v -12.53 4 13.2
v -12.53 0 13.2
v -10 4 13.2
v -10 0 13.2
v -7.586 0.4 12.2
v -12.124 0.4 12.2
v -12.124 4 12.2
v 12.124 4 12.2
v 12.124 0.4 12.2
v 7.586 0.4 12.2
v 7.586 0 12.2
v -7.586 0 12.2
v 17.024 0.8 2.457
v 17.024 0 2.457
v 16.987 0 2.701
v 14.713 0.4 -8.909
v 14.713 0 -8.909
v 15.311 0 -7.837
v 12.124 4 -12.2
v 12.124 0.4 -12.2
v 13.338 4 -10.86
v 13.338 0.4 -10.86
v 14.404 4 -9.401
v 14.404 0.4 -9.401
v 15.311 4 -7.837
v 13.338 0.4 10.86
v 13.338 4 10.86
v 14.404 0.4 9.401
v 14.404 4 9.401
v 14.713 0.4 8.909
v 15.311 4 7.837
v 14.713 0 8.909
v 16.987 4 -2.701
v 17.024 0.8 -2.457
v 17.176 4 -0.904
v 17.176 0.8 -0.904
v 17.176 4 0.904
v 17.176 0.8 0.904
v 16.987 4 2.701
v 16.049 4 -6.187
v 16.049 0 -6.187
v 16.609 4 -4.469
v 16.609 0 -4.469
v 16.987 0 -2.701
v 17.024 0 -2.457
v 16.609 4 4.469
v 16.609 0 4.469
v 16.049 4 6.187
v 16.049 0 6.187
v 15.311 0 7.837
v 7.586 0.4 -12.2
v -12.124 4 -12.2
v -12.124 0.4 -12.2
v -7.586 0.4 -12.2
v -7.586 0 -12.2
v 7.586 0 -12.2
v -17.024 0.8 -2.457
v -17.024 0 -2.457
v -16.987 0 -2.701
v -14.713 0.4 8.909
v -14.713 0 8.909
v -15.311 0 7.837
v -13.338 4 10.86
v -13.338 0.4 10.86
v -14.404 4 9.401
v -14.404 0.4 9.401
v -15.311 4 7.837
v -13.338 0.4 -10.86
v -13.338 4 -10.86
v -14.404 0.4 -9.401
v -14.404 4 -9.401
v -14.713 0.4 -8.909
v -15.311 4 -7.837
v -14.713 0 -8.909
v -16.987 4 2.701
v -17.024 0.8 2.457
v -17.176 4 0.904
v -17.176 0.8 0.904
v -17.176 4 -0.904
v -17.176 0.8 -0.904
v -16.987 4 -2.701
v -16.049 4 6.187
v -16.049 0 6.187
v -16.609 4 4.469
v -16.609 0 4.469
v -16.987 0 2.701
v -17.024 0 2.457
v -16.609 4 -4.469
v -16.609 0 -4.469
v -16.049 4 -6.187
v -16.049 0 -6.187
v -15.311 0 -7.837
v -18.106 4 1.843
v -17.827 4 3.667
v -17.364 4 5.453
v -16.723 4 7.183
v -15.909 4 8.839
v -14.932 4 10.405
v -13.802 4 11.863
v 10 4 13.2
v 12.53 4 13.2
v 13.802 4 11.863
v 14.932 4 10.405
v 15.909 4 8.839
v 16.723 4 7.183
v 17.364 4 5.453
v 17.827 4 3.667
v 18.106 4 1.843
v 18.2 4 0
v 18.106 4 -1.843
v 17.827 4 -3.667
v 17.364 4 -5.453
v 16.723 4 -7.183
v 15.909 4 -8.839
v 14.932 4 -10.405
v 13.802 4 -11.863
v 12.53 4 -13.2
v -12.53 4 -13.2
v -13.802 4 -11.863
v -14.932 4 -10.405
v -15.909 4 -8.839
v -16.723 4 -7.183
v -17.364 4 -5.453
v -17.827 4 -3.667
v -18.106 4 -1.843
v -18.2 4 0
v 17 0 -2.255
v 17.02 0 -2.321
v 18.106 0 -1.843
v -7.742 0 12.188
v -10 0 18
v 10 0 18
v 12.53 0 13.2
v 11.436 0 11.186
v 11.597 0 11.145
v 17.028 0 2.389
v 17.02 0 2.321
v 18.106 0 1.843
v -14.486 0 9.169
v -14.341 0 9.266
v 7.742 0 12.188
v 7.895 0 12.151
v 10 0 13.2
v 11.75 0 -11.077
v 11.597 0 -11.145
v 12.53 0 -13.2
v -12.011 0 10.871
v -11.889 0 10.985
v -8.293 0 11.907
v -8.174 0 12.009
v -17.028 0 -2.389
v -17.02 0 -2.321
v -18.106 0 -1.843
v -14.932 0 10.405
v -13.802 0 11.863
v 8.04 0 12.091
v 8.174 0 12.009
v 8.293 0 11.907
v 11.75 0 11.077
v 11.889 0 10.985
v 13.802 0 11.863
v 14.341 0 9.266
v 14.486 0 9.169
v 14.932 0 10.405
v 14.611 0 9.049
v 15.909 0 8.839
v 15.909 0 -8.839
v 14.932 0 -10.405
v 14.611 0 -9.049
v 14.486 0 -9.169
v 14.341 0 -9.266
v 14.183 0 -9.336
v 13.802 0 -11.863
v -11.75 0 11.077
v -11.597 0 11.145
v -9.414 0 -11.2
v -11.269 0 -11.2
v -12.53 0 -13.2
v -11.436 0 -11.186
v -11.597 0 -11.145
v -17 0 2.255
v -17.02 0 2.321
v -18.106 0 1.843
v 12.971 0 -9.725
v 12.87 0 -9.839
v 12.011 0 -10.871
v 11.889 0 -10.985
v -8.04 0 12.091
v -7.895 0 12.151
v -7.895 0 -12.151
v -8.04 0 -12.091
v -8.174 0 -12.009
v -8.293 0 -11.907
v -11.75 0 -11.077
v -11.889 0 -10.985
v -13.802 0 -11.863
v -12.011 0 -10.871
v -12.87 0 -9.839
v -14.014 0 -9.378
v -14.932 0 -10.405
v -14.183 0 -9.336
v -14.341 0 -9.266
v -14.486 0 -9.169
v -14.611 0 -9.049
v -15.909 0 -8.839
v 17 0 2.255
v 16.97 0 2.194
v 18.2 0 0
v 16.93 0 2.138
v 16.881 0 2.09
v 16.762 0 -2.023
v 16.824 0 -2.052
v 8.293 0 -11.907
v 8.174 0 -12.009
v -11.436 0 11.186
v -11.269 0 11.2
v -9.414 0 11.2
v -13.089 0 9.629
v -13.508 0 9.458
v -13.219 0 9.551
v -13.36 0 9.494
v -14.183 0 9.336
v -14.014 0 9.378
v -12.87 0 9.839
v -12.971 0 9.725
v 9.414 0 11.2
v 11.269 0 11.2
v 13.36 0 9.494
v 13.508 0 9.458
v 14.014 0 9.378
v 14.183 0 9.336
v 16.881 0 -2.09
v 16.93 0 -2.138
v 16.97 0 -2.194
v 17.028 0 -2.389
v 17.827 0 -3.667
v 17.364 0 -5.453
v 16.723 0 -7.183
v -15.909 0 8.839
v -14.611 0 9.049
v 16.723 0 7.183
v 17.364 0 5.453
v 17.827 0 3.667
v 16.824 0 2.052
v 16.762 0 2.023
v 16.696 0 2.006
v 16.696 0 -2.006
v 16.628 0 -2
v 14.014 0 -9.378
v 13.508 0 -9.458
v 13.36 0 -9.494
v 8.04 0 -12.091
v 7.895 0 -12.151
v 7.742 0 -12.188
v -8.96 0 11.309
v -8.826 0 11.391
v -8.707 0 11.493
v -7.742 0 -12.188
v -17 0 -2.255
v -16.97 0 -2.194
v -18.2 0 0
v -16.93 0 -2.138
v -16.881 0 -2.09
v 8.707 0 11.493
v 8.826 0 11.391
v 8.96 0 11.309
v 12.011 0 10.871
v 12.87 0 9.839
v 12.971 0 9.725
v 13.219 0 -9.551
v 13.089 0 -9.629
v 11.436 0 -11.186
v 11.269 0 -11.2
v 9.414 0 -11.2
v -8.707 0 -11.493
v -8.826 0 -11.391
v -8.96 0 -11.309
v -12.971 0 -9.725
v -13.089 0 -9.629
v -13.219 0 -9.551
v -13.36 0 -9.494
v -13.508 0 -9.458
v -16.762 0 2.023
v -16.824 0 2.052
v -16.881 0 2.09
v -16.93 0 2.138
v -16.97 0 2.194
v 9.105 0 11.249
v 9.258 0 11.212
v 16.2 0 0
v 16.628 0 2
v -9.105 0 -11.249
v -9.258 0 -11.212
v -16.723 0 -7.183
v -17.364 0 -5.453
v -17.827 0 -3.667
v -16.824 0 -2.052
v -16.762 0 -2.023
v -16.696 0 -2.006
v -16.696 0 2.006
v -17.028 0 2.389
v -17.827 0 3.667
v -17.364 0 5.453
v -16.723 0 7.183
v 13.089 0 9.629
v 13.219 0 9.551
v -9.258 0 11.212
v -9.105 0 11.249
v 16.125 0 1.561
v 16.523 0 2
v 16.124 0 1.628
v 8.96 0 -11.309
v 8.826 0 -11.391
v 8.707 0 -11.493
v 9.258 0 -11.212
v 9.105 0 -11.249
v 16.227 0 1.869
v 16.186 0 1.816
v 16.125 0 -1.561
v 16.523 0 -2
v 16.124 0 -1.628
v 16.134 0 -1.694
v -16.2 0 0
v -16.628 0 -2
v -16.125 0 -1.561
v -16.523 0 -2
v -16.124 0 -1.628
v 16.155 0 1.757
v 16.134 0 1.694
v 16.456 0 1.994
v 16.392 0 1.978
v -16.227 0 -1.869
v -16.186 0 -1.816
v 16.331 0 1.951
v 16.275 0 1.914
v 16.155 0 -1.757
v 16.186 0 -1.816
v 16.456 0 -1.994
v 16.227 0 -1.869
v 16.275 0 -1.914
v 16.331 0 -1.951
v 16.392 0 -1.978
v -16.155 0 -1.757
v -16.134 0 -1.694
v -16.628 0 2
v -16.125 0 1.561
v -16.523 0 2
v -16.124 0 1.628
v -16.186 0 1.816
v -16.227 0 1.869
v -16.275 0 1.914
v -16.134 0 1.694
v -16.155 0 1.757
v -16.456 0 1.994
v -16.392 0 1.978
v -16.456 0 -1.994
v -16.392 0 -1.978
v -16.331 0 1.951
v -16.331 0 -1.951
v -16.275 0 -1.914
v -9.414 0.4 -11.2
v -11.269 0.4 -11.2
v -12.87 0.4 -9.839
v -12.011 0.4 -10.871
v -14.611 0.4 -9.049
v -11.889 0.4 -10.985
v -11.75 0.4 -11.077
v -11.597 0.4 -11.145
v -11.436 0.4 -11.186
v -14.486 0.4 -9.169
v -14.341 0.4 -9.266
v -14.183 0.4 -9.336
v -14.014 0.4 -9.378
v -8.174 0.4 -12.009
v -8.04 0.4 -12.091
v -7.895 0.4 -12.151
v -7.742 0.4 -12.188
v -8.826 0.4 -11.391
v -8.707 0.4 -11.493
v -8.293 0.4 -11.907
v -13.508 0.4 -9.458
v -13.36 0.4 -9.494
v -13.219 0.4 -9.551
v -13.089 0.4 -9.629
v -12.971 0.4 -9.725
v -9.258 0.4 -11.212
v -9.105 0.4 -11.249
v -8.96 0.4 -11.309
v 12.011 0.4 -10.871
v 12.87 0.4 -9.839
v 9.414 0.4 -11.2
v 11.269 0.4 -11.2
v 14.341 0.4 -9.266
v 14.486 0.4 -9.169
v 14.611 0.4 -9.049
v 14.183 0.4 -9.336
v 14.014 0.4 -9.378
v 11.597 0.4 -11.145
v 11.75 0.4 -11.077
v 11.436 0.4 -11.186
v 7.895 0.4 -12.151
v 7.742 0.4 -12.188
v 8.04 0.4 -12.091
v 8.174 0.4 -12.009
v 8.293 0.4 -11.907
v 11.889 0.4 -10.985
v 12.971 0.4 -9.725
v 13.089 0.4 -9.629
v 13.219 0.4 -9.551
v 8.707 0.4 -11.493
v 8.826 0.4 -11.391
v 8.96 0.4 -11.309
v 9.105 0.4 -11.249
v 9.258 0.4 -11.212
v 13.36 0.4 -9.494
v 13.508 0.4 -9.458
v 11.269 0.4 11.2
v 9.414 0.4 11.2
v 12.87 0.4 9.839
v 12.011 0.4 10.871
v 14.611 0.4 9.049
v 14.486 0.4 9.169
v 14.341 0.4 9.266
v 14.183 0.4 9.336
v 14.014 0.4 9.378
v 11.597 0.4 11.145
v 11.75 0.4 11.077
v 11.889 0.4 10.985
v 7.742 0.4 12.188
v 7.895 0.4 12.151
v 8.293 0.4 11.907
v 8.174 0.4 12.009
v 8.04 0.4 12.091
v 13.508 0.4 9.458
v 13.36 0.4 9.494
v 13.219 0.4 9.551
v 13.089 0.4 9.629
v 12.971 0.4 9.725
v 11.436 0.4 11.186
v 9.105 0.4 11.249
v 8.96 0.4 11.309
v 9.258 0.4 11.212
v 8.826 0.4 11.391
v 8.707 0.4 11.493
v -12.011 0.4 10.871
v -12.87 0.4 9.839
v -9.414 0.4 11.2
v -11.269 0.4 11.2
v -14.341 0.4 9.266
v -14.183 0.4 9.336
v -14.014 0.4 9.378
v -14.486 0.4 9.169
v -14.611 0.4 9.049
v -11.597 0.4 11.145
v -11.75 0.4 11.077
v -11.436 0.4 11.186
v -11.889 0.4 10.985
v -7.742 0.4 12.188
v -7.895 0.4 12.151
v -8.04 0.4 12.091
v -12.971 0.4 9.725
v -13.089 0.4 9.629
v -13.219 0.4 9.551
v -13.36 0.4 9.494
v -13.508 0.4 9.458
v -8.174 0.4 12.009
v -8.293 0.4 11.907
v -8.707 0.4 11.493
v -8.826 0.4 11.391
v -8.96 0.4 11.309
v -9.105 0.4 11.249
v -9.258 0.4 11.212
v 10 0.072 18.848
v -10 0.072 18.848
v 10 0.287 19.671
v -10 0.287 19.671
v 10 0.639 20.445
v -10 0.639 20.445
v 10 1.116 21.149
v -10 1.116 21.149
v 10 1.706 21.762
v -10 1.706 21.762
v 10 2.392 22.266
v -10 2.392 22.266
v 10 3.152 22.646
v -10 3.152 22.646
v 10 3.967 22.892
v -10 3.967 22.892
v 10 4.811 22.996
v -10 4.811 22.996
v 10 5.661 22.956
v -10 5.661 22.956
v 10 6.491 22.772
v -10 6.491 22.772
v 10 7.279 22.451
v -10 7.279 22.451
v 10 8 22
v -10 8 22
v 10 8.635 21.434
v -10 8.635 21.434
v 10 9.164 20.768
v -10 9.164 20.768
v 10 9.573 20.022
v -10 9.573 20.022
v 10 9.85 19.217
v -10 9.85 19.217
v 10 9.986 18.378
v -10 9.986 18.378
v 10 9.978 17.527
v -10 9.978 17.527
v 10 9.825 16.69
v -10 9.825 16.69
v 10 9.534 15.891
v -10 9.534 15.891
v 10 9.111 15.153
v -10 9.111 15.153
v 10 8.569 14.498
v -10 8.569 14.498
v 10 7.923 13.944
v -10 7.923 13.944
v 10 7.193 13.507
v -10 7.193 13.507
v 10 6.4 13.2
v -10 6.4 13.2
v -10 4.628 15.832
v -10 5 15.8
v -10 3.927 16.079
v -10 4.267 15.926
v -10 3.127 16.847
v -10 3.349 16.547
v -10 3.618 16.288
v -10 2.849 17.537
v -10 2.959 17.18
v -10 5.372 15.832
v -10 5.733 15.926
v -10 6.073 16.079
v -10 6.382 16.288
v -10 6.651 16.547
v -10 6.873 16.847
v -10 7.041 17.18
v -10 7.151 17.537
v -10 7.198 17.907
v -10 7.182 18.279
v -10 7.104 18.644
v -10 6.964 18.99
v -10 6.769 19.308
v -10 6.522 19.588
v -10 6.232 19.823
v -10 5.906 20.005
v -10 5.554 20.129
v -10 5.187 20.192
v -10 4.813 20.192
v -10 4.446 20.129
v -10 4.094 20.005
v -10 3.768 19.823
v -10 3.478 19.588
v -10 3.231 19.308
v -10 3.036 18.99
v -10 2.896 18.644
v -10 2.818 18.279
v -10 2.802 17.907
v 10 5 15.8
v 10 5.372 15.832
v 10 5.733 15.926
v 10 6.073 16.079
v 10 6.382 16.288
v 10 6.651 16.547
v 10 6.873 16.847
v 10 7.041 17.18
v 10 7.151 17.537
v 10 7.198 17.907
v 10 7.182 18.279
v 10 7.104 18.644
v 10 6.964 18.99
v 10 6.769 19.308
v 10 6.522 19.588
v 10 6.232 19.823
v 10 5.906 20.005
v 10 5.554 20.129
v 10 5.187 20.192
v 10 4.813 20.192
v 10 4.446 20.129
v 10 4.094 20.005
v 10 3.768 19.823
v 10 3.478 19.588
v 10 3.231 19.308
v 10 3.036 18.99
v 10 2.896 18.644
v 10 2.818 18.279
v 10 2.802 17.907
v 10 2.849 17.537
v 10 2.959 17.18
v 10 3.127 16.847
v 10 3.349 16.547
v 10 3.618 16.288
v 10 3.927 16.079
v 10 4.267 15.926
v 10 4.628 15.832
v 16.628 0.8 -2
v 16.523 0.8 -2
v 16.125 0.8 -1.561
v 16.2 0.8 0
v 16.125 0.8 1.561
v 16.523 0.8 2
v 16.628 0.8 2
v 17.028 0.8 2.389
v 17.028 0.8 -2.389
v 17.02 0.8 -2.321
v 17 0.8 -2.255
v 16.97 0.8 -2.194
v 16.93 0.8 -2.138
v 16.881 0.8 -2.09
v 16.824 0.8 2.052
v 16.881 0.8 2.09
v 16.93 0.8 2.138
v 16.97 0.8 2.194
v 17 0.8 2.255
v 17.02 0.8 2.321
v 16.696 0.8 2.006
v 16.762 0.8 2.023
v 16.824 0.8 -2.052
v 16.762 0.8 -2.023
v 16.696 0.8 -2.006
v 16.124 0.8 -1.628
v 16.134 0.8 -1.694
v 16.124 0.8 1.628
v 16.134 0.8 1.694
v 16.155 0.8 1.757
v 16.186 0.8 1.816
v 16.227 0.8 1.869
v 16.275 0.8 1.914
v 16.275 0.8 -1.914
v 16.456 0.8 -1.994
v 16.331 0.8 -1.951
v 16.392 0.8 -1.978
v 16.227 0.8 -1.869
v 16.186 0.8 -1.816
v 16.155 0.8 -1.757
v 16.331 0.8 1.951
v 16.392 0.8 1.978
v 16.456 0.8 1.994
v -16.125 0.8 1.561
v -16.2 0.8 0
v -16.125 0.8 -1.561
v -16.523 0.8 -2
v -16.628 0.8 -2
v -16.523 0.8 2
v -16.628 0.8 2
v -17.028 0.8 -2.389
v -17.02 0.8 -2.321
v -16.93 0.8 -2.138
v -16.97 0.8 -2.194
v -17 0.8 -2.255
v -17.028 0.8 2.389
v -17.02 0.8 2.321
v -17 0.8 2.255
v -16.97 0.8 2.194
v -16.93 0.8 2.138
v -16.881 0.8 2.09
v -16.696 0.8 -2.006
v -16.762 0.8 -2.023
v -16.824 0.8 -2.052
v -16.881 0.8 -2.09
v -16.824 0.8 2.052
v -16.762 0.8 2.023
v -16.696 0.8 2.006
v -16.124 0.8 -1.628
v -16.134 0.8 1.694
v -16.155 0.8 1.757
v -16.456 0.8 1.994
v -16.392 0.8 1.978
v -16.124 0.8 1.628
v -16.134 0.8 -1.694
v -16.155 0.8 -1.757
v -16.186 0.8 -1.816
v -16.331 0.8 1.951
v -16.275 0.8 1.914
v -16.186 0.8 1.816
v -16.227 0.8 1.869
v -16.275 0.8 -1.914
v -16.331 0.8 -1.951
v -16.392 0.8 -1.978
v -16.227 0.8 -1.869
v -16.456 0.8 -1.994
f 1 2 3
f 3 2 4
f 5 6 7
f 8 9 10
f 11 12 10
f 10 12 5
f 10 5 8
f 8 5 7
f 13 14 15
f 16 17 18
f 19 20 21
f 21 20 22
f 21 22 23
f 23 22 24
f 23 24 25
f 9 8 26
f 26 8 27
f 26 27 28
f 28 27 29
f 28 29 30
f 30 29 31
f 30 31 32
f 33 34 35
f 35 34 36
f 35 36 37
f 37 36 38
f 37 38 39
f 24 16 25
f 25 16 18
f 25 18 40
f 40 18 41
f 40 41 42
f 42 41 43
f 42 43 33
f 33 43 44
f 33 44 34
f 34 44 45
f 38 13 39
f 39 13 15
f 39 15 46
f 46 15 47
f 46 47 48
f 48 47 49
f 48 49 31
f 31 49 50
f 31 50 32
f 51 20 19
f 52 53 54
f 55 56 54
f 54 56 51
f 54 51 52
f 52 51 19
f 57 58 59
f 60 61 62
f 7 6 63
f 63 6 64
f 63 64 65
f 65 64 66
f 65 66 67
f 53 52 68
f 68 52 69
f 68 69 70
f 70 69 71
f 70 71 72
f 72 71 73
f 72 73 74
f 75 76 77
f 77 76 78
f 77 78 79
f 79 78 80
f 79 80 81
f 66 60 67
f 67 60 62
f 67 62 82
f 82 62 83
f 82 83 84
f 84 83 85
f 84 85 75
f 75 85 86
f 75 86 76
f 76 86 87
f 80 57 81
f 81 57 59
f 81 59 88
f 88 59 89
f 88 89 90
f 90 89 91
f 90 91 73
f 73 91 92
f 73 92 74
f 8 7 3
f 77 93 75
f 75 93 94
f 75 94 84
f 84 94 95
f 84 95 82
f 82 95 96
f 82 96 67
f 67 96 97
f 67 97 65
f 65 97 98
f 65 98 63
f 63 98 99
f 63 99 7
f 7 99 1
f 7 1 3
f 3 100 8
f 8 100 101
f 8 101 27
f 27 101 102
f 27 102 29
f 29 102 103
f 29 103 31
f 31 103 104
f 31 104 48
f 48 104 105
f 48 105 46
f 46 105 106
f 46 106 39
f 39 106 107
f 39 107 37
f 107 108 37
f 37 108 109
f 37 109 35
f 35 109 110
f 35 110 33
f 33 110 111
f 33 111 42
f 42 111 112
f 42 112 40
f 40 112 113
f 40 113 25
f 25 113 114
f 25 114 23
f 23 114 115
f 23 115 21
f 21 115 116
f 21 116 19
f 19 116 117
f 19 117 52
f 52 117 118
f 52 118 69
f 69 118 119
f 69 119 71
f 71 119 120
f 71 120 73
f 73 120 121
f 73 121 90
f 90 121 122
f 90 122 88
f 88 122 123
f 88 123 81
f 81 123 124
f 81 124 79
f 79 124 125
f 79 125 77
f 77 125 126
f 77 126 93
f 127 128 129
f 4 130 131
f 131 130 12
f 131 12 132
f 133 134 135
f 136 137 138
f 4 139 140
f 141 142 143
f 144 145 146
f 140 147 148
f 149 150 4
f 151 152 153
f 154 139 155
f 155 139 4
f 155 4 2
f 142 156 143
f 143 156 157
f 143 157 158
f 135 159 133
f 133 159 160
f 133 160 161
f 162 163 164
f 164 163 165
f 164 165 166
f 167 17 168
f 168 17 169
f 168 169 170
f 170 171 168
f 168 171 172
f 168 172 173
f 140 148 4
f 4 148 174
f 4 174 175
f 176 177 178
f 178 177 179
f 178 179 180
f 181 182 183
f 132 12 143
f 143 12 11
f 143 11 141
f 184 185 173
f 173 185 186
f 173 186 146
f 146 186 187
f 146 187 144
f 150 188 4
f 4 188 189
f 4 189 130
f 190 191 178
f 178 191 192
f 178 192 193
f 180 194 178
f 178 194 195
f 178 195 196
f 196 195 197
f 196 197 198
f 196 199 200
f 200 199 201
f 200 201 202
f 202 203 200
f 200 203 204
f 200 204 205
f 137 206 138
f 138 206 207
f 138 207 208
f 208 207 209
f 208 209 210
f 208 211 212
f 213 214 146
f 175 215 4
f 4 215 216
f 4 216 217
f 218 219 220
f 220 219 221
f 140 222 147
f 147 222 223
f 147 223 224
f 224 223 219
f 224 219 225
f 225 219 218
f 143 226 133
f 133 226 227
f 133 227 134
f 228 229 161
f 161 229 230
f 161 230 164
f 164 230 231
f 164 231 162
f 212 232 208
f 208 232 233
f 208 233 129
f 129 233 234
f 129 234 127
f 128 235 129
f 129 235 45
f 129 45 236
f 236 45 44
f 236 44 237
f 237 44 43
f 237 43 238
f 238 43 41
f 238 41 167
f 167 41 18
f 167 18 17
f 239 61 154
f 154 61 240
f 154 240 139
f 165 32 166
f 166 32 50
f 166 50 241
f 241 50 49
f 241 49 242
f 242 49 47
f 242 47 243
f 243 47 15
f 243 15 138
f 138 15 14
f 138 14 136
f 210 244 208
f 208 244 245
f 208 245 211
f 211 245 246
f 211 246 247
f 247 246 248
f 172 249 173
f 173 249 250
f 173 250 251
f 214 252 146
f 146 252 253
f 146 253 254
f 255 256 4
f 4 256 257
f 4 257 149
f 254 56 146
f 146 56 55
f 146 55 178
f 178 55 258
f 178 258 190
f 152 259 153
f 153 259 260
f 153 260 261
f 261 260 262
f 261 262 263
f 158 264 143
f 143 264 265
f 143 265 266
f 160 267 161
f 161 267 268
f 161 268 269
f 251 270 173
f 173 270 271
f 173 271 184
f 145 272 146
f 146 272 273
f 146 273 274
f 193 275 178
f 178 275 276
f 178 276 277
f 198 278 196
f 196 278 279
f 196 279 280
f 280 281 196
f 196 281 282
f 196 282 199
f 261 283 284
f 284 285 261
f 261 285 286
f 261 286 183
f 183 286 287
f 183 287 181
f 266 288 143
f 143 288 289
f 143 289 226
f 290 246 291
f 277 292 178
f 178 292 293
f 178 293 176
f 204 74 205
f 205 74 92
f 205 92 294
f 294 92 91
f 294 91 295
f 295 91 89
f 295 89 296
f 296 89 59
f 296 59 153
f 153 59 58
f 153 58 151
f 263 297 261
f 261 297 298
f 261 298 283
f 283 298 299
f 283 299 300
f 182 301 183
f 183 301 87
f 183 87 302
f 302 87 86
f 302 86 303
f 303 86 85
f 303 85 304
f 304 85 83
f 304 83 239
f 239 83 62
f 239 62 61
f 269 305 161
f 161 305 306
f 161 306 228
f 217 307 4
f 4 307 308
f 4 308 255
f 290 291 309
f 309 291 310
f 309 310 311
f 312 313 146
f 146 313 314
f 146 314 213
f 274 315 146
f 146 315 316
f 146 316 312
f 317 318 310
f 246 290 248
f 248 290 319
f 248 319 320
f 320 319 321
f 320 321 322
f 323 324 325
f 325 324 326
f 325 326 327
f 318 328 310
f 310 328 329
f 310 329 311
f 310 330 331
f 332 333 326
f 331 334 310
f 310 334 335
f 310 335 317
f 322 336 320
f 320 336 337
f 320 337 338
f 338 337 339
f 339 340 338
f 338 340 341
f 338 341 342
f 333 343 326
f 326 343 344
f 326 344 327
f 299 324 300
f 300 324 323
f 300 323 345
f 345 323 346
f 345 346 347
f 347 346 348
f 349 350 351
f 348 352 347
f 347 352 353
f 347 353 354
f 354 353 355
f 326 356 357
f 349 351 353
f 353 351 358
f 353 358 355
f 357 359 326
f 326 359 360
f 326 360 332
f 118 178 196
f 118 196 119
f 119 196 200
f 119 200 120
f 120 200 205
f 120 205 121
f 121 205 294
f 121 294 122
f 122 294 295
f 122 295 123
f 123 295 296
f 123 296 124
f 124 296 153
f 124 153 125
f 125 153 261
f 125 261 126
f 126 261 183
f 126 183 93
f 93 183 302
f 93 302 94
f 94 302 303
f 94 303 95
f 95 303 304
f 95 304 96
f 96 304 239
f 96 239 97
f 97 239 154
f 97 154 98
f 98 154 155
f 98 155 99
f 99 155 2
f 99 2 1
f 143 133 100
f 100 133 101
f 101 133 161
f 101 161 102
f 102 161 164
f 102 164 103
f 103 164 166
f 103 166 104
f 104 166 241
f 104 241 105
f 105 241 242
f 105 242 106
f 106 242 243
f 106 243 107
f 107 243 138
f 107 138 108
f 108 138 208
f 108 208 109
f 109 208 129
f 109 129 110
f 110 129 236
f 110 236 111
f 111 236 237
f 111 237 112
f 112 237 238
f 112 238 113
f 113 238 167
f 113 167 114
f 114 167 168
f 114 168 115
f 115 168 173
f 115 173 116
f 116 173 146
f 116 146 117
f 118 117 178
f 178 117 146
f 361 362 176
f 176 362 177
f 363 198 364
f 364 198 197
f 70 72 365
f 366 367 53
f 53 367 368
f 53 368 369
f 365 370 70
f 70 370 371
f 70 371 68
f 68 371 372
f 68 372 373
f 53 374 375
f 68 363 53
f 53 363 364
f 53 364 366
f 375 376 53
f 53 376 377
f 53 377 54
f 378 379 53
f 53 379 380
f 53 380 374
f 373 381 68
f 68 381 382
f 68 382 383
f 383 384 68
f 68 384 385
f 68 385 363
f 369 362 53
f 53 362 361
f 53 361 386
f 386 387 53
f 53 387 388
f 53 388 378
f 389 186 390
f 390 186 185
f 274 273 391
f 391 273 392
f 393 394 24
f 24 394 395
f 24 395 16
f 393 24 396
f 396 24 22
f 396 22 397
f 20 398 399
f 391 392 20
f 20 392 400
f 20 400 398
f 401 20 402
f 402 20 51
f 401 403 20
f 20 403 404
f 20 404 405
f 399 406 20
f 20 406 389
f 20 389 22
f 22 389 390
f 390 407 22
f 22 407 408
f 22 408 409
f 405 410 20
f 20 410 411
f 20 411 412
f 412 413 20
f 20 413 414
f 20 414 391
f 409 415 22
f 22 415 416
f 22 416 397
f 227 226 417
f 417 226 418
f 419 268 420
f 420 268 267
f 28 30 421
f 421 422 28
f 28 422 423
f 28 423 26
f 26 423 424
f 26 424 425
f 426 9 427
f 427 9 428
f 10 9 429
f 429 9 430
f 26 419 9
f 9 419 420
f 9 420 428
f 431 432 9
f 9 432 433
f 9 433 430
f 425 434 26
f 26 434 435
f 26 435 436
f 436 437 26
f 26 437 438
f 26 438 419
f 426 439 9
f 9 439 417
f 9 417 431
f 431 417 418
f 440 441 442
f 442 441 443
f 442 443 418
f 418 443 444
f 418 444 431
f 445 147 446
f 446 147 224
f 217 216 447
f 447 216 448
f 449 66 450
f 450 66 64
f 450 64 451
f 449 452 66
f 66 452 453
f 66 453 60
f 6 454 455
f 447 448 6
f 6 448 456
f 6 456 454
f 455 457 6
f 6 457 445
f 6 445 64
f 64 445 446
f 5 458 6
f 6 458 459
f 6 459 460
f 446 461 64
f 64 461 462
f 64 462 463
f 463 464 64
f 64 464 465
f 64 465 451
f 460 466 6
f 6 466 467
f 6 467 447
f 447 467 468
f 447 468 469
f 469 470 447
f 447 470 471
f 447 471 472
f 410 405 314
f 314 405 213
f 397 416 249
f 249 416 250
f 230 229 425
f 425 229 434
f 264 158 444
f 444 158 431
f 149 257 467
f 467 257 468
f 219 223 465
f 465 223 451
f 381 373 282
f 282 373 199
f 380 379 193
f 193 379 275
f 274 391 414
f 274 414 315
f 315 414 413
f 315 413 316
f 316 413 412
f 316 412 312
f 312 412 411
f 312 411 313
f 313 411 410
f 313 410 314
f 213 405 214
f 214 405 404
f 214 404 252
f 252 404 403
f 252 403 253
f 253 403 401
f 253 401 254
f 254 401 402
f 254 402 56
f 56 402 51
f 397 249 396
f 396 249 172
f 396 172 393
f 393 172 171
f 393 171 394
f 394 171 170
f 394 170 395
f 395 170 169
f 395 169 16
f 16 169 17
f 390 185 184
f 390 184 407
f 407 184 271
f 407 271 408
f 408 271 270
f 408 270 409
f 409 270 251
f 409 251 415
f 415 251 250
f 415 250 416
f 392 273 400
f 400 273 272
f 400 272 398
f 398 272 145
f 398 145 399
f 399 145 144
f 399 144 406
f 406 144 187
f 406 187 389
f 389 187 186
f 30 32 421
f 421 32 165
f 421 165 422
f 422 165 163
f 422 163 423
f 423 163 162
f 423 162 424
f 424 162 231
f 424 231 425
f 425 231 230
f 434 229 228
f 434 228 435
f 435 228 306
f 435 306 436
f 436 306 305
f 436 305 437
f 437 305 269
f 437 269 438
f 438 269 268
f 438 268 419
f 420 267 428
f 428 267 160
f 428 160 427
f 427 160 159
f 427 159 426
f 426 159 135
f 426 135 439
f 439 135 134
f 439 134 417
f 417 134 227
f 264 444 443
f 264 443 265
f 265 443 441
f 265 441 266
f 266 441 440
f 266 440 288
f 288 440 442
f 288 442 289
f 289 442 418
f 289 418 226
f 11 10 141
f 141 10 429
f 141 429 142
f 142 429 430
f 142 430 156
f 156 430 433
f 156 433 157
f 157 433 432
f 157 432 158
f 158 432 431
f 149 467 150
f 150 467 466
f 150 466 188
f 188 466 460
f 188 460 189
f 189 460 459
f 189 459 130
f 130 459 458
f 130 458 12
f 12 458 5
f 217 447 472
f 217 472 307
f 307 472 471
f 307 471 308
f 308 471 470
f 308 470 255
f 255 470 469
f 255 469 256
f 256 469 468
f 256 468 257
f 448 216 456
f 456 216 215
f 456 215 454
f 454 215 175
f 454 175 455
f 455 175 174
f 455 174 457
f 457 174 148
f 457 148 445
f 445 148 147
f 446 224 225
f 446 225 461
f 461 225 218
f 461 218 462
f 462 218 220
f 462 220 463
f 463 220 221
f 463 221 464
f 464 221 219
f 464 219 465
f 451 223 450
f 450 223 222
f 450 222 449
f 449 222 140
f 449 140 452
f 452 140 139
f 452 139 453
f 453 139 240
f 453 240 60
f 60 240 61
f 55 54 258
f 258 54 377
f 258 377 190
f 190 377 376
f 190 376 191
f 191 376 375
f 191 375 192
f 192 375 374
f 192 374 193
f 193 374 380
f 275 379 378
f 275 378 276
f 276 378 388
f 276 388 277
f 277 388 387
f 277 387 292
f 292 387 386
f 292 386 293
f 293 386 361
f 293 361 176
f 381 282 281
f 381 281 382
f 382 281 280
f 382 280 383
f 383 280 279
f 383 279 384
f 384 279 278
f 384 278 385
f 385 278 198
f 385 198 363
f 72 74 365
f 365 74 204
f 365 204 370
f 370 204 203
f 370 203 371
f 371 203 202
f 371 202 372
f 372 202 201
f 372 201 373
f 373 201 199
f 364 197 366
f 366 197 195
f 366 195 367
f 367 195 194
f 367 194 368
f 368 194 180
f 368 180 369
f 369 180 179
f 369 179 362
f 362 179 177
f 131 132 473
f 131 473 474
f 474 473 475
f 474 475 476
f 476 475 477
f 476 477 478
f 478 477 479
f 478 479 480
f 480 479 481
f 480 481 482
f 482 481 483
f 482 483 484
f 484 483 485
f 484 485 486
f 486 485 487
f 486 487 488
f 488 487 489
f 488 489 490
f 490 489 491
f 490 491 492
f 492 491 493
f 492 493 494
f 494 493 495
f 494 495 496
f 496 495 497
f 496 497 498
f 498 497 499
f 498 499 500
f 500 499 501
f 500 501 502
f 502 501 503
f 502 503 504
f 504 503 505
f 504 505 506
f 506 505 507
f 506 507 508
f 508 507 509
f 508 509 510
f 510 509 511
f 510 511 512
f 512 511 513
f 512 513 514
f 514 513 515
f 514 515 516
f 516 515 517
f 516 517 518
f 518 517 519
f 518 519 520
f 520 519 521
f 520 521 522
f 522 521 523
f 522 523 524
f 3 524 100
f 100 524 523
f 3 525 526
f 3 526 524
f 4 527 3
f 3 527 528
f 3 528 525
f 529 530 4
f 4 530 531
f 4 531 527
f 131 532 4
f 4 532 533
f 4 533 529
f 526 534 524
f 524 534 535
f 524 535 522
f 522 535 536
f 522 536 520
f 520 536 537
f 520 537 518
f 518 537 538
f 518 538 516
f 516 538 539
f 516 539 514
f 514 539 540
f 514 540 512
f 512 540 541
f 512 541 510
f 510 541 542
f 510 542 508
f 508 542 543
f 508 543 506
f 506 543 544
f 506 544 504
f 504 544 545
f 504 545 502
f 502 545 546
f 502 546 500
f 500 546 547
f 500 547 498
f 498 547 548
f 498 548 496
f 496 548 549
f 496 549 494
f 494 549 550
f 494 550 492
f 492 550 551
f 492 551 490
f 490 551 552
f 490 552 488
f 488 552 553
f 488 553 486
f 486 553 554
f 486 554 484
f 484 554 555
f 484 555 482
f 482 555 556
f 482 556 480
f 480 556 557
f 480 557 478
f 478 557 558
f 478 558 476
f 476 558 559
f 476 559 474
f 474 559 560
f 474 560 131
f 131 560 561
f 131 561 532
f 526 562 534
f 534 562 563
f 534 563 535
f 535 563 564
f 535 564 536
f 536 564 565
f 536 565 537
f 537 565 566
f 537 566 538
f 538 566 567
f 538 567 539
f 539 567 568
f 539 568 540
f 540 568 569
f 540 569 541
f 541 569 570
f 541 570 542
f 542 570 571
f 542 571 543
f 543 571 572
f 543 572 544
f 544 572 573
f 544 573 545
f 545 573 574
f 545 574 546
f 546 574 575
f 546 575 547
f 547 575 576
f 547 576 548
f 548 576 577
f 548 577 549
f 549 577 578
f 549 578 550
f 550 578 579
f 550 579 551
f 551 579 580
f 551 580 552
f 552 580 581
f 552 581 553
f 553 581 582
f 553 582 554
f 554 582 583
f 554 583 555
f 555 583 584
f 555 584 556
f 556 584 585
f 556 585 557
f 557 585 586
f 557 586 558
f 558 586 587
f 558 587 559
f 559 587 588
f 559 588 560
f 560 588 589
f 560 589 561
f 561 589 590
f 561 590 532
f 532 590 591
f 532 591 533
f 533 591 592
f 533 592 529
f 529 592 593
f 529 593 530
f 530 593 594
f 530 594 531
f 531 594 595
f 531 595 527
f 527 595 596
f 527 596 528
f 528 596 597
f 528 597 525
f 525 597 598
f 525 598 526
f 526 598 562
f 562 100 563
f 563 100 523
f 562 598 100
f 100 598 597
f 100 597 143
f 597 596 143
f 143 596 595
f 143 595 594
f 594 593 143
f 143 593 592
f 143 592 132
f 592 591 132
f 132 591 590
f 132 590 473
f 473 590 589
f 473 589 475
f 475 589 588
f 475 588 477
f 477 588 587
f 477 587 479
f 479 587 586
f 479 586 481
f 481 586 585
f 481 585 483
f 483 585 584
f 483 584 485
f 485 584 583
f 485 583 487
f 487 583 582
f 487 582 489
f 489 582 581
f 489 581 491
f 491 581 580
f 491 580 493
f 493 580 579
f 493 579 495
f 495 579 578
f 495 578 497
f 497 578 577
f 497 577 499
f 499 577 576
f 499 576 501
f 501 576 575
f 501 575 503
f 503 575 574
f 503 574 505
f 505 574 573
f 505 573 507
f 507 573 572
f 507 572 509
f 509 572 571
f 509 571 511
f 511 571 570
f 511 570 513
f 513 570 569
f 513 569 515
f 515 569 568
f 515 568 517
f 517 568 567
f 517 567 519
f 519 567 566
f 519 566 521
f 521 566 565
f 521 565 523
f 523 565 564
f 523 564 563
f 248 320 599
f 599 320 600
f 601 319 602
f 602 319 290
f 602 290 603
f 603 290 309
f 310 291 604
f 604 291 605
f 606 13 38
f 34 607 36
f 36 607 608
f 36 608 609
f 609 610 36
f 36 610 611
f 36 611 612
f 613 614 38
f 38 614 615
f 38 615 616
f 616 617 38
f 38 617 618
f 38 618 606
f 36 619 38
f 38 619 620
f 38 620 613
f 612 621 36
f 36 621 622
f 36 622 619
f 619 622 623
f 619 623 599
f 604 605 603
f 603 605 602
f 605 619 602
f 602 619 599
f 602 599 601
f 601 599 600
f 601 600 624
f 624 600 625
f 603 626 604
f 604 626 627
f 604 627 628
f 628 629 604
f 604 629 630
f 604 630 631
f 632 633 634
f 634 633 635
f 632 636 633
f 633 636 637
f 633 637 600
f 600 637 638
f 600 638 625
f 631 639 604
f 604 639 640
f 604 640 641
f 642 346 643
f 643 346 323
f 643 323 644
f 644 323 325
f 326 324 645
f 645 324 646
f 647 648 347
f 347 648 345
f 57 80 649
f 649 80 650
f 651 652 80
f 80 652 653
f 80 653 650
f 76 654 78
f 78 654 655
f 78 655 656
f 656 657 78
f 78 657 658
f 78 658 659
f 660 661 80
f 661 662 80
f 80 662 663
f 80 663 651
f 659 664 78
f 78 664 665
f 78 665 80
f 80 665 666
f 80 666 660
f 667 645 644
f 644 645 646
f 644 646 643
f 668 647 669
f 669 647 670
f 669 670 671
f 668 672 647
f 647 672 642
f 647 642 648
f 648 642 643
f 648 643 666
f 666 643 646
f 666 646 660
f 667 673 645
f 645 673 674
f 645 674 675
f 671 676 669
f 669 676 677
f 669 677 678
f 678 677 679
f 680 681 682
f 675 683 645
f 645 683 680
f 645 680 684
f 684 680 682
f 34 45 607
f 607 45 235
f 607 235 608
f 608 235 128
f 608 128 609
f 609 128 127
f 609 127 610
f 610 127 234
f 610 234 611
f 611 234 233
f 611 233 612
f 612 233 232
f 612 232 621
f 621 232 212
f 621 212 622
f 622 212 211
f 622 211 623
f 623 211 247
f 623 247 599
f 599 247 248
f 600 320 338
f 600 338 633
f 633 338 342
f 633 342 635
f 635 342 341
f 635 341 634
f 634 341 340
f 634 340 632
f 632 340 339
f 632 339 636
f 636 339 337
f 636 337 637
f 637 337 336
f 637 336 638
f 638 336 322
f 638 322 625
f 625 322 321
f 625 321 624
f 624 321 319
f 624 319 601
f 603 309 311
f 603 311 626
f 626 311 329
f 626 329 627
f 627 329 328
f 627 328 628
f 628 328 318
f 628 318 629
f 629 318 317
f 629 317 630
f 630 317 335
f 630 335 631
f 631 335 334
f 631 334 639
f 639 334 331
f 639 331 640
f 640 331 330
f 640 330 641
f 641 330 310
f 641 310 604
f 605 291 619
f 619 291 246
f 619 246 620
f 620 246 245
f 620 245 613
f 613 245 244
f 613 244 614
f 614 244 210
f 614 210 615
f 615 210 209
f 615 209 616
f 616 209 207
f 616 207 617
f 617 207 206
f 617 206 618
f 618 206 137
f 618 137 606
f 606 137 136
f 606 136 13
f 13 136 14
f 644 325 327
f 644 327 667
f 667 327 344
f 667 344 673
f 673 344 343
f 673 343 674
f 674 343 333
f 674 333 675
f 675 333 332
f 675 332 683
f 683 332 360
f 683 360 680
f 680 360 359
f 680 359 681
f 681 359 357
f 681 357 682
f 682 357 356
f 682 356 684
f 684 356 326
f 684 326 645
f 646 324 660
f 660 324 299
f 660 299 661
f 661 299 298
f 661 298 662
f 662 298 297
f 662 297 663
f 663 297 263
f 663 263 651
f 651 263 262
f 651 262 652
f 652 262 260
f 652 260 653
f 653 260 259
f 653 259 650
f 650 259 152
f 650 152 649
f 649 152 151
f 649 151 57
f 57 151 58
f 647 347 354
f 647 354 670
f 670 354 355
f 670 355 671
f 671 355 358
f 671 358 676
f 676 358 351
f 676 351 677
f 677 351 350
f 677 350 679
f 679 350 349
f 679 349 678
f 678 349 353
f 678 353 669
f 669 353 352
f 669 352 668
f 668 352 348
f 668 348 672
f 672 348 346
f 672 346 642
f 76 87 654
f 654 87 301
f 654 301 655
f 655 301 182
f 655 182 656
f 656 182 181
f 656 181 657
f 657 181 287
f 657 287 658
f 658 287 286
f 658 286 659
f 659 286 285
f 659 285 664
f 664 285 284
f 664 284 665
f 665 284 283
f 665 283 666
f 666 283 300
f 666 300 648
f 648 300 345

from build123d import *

# Parameters (mm, degrees)
EXTRUDE_1_DEPTH      = 4
EXTRUDE_2_DEPTH      = 0.4
CHAMFER_1_SIZE       = 1
FILLET_1_R           = 1
EXTRUDE_3_DEPTH      = 10
EXTRUDE_3_DEPTH_BACK = 10
SKETCH_3_R           = 2.2
EXTRUDE_4_DEPTH      = 0.8
FILLET_2_R           = 0.4


with BuildPart() as part:
    # 草图1 → 凸台-拉伸1 (new body)
    with BuildSketch(Plane(origin=(0, 0, 0), x_dir=(1, 0, 0), z_dir=(0, 1, 0))):
        with BuildLine():
            Line((-12.529964086, 13.2), (12.529964086, 13.2))
            ThreePointArc((12.529964086, 13.2), (18.2, 0), (12.529964086, -13.2))
            Line((12.529964086, -13.2), (-12.529964086, -13.2))
            ThreePointArc((-12.529964086, -13.2), (-18.2, 0), (-12.529964086, 13.2))
        make_face()
        with BuildLine():
            Line((-12.124355653, 12.2), (12.124355653, 12.2))
            ThreePointArc((12.124355653, 12.2), (17.2, 0), (12.124355653, -12.2))
            Line((12.124355653, -12.2), (-12.124355653, -12.2))
            ThreePointArc((-12.124355653, -12.2), (-17.2, 0), (-12.124355653, 12.2))
        make_face(mode=Mode.SUBTRACT)
    extrude(amount=EXTRUDE_1_DEPTH)

    # 草图2 → 凸台-拉伸2 (add)
    with BuildSketch(Plane.XZ):
        with BuildLine():
            Line((-12.124355653, -12.2), (-9, -12.2))
            Line((-9, -12.2), (-9, -11.2))
            Line((-9, -11.2), (-11.704699911, -11.2))
            ThreePointArc((-11.704699911, -11.2), (-12.433722739, -10.384726228), (-13.106075309, -9.522121087))
            Line((-13.106075309, -9.522121087), (-13.915092303, -10.109906339))
            ThreePointArc((-13.915092303, -10.109906339), (-13.061597733, -11.190829489), (-12.124355653, -12.2))
        make_face()
        with BuildLine():
            Line((9, -12.2), (12.124355653, -12.2))
            ThreePointArc((12.124355653, -12.2), (13.061597733, -11.190829489), (13.915092303, -10.109906339))
            Line((13.915092303, -10.109906339), (13.106075309, -9.522121087))
            ThreePointArc((13.106075309, -9.522121087), (12.433722739, -10.384726228), (11.704699911, -11.2))
            Line((11.704699911, -11.2), (9, -11.2))
            Line((9, -11.2), (9, -12.2))
        make_face()
        with BuildLine():
            Line((13.106075309, 9.522121087), (13.915092303, 10.109906339))
            ThreePointArc((13.915092303, 10.109906339), (13.061597733, 11.190829489), (12.124355653, 12.2))
            Line((12.124355653, 12.2), (9, 12.2))
            Line((9, 12.2), (9, 11.2))
            Line((9, 11.2), (11.704699911, 11.2))
            ThreePointArc((11.704699911, 11.2), (12.433722739, 10.384726228), (13.106075309, 9.522121087))
        make_face()
        with BuildLine():
            ThreePointArc((-12.124355653, 12.2), (-13.061597733, 11.190829489), (-13.915092303, 10.109906339))
            Line((-13.915092303, 10.109906339), (-13.106075309, 9.522121087))
            ThreePointArc((-13.106075309, 9.522121087), (-12.433722739, 10.384726228), (-11.704699911, 11.2))
            Line((-11.704699911, 11.2), (-9, 11.2))
            Line((-9, 11.2), (-9, 12.2))
            Line((-9, 12.2), (-12.124355653, 12.2))
        make_face()
    extrude(amount=-EXTRUDE_2_DEPTH)

    # 倒角1
    # the kernel refuses this chamfer: 1 mm, written as the material it adds along each edge
    with BuildSketch(Plane(origin=(9, 0, -12.2), x_dir=(-1, 0, 0), z_dir=(0, 1, 0))) as chamfer_1_piece_1_section:
        Polygon((CHAMFER_1_SIZE, 0), (0, CHAMFER_1_SIZE), (0, 0), align=None)
    chamfer_1_piece_1 = extrude(amount=0.4, mode=Mode.PRIVATE)
    chamfer_1_piece_1 = split(chamfer_1_piece_1, bisect_by=Plane(origin=(9, 0, -11.2), z_dir=(0, 0, -1)), keep=Keep.TOP, mode=Mode.PRIVATE)
    add(chamfer_1_piece_1)
    with BuildSketch(Plane(origin=(13.915092303, 0, -10.109906339), x_dir=(0.5646701289866782, 0, 0.8253166940212516), z_dir=(0, 1, 0))) as chamfer_1_piece_2_section:
        with BuildLine():
            Line((0.972875022, 0), (CHAMFER_1_SIZE * 0.0282812506504, -CHAMFER_1_SIZE * 0.999600005433))
            Line((CHAMFER_1_SIZE * 0.0282812506504, -CHAMFER_1_SIZE * 0.999600005433), (0, 0))
            ThreePointArc((0, 0), (0.500167916, 0.006874426), (0.972875022, 0))
        make_face()
    chamfer_1_piece_2 = extrude(amount=0.4, mode=Mode.PRIVATE)
    chamfer_1_piece_2 = chamfer_1_piece_2 - Plane(origin=(0, 0, 0), x_dir=(0.8090169943749429, 0, -0.5877852522924794), z_dir=(0, -1, 0)) * Cylinder(16.2, 5, mode=Mode.PRIVATE)
    add(chamfer_1_piece_2)
    with BuildSketch(Plane(origin=(13.915092303, 0, 10.109906339), x_dir=(0.5646701289866733, 0, -0.825316694021255), z_dir=(0, 1, 0))) as chamfer_1_piece_3_section:
        with BuildLine():
            Line((0.972875022, 0), (CHAMFER_1_SIZE * 0.0282812506504, CHAMFER_1_SIZE * 0.999600005433))
            Line((CHAMFER_1_SIZE * 0.0282812506504, CHAMFER_1_SIZE * 0.999600005433), (0, 0))
            ThreePointArc((0, 0), (0.500167916, -0.006874426), (0.972875022, 0))
        make_face()
    chamfer_1_piece_3 = extrude(amount=0.4, mode=Mode.PRIVATE)
    chamfer_1_piece_3 = chamfer_1_piece_3 - Plane(origin=(0, 0, 0), x_dir=(0.7225123401678771, 0, 0.6913580246913591), z_dir=(0, -1, 0)) * Cylinder(16.2, 5, mode=Mode.PRIVATE)
    add(chamfer_1_piece_3)
    with BuildSketch(Plane(origin=(9, 0, 12.2), x_dir=(-1, 0, 0), z_dir=(0, 1, 0))) as chamfer_1_piece_4_section:
        Polygon((CHAMFER_1_SIZE, 0), (0, -CHAMFER_1_SIZE), (0, 0), align=None)
    chamfer_1_piece_4 = extrude(amount=0.4, mode=Mode.PRIVATE)
    chamfer_1_piece_4 = split(chamfer_1_piece_4, bisect_by=Plane(origin=(9, 0, 11.2), z_dir=(0, 0, 1)), keep=Keep.TOP, mode=Mode.PRIVATE)
    add(chamfer_1_piece_4)
    with BuildSketch(Plane(origin=(-9, 0, 12.2), x_dir=(1, 0, 0), z_dir=(0, 1, 0))) as chamfer_1_piece_5_section:
        Polygon((CHAMFER_1_SIZE, 0), (0, CHAMFER_1_SIZE), (0, 0), align=None)
    chamfer_1_piece_5 = extrude(amount=0.4, mode=Mode.PRIVATE)
    chamfer_1_piece_5 = split(chamfer_1_piece_5, bisect_by=Plane(origin=(-9, 0, 11.2), z_dir=(0, 0, 1)), keep=Keep.TOP, mode=Mode.PRIVATE)
    add(chamfer_1_piece_5)
    with BuildSketch(Plane(origin=(-13.915092303, 0, 10.109906339), x_dir=(-0.5646701289866741, 0, -0.8253166940212543), z_dir=(0, 1, 0))) as chamfer_1_piece_6_section:
        with BuildLine():
            Line((0.972875022, 0), (CHAMFER_1_SIZE * 0.0282812506504, -CHAMFER_1_SIZE * 0.999600005433))
            Line((CHAMFER_1_SIZE * 0.0282812506504, -CHAMFER_1_SIZE * 0.999600005433), (0, 0))
            ThreePointArc((0, 0), (0.500167916, 0.006874426), (0.972875022, 0))
        make_face()
    chamfer_1_piece_6 = extrude(amount=0.4, mode=Mode.PRIVATE)
    chamfer_1_piece_6 = chamfer_1_piece_6 - Plane(origin=(0, 0, 0), x_dir=(-0.809016994374947, 0, 0.5877852522924738), z_dir=(0, -1, 0)) * Cylinder(16.2, 5, mode=Mode.PRIVATE)
    add(chamfer_1_piece_6)
    with BuildSketch(Plane(origin=(-13.915092303, 0, -10.109906339), x_dir=(-0.5646701289866836, 0, 0.8253166940212479), z_dir=(0, 1, 0))) as chamfer_1_piece_7_section:
        with BuildLine():
            Line((0.972875022, 0), (CHAMFER_1_SIZE * 0.0282812506504, CHAMFER_1_SIZE * 0.999600005433))
            Line((CHAMFER_1_SIZE * 0.0282812506504, CHAMFER_1_SIZE * 0.999600005433), (0, 0))
            ThreePointArc((0, 0), (0.500167916, -0.006874426), (0.972875022, 0))
        make_face()
    chamfer_1_piece_7 = extrude(amount=0.4, mode=Mode.PRIVATE)
    chamfer_1_piece_7 = chamfer_1_piece_7 - Plane(origin=(0, 0, 0), x_dir=(-0.7225123401678729, 0, -0.6913580246913635), z_dir=(0, -1, 0)) * Cylinder(16.2, 5, mode=Mode.PRIVATE)
    add(chamfer_1_piece_7)
    with BuildSketch(Plane(origin=(-9, 0, -12.2), x_dir=(1, 0, 0), z_dir=(0, 1, 0))) as chamfer_1_piece_8_section:
        Polygon((CHAMFER_1_SIZE, 0), (0, -CHAMFER_1_SIZE), (0, 0), align=None)
    chamfer_1_piece_8 = extrude(amount=0.4, mode=Mode.PRIVATE)
    chamfer_1_piece_8 = split(chamfer_1_piece_8, bisect_by=Plane(origin=(-9, 0, -11.2), z_dir=(0, 0, -1)), keep=Keep.TOP, mode=Mode.PRIVATE)
    add(chamfer_1_piece_8)

    # 圆角1
    fillet_1_edges = [part.edges().sort_by_distance(p)[0] for p in [
        (-8, 0.2, -12.2),
        (8, 0.2, -12.2),
        (14.464445768, 0.2, 9.306976342),
        (14.464445768, 0.2, -9.306976342),
        (-8, 0.2, 12.2),
        (8, 0.2, 12.2),
        (-14.464445768, 0.2, -9.306976342),
        (-14.464445768, 0.2, 9.306976342),
        (-11.704699911, 0.2, -11.2),
        (-9, 0.2, -11.2),
        (-13.106075309, 0.2, -9.522121087),
        (11.704699911, 0.2, -11.2),
        (13.106075309, 0.2, -9.522121087),
        (9, 0.2, -11.2),
        (11.704699911, 0.2, 11.2),
        (9, 0.2, 11.2),
        (13.106075309, 0.2, 9.522121087),
        (-11.704699911, 0.2, 11.2),
        (-13.106075309, 0.2, 9.522121087),
        (-9, 0.2, 11.2),
    ]]
    fillet(fillet_1_edges, radius=FILLET_1_R)

    # 草图3 → 凸台-拉伸3 (add, two sides: drawn at the far end of the back side and taken through both)
    with BuildSketch(Plane(origin=(0, 0, 0), x_dir=(0, 0, -1), z_dir=(1, 0, 0)).offset(-EXTRUDE_3_DEPTH_BACK)):
        with BuildLine():
            Line((-18, 0), (-13.2, 0))
            Line((-13.2, 0), (-13.2, 4))
            Line((-13.2, 4), (-13.2, 6.4))
            ThreePointArc((-13.2, 6.4), (-22, 8), (-18, 0))
        make_face()
        with Locations((-18, 5)):
            Circle(SKETCH_3_R, mode=Mode.SUBTRACT)
    extrude(amount=EXTRUDE_3_DEPTH + EXTRUDE_3_DEPTH_BACK)

    # 草图4 → 凸台-拉伸4 (add)
    with BuildSketch(Plane.XZ):
        with BuildLine():
            Line((16.076069171, 2), (17.083325203, 2))
            ThreePointArc((17.083325203, 2), (17.2, 0), (17.083325203, -2))
            Line((17.083325203, -2), (16.076069171, -2))
            ThreePointArc((16.076069171, -2), (16.2, 0), (16.076069171, 2))
        make_face()
        with BuildLine():
            Line((-16.076069171, 2), (-17.083325203, 2))
            ThreePointArc((-17.083325203, 2), (-17.2, 0), (-17.083325203, -2))
            Line((-17.083325203, -2), (-16.076069171, -2))
            ThreePointArc((-16.076069171, -2), (-16.2, 0), (-16.076069171, 2))
        make_face()
    extrude(amount=-EXTRUDE_4_DEPTH)

    # 圆角2
    fillet_2_edges = [part.edges().sort_by_distance(p)[0] for p in [
        (17.083325203, 0.4, 2),
        (17.083325203, 0.4, -2),
        (16.076069171, 0.4, -2),
        (16.076069171, 0.4, 2),
        (-16.076069171, 0.4, 2),
        (-16.076069171, 0.4, -2),
        (-17.083325203, 0.4, -2),
        (-17.083325203, 0.4, 2),
    ]]
    fillet(fillet_2_edges, radius=FILLET_2_R)


solid = part.part
